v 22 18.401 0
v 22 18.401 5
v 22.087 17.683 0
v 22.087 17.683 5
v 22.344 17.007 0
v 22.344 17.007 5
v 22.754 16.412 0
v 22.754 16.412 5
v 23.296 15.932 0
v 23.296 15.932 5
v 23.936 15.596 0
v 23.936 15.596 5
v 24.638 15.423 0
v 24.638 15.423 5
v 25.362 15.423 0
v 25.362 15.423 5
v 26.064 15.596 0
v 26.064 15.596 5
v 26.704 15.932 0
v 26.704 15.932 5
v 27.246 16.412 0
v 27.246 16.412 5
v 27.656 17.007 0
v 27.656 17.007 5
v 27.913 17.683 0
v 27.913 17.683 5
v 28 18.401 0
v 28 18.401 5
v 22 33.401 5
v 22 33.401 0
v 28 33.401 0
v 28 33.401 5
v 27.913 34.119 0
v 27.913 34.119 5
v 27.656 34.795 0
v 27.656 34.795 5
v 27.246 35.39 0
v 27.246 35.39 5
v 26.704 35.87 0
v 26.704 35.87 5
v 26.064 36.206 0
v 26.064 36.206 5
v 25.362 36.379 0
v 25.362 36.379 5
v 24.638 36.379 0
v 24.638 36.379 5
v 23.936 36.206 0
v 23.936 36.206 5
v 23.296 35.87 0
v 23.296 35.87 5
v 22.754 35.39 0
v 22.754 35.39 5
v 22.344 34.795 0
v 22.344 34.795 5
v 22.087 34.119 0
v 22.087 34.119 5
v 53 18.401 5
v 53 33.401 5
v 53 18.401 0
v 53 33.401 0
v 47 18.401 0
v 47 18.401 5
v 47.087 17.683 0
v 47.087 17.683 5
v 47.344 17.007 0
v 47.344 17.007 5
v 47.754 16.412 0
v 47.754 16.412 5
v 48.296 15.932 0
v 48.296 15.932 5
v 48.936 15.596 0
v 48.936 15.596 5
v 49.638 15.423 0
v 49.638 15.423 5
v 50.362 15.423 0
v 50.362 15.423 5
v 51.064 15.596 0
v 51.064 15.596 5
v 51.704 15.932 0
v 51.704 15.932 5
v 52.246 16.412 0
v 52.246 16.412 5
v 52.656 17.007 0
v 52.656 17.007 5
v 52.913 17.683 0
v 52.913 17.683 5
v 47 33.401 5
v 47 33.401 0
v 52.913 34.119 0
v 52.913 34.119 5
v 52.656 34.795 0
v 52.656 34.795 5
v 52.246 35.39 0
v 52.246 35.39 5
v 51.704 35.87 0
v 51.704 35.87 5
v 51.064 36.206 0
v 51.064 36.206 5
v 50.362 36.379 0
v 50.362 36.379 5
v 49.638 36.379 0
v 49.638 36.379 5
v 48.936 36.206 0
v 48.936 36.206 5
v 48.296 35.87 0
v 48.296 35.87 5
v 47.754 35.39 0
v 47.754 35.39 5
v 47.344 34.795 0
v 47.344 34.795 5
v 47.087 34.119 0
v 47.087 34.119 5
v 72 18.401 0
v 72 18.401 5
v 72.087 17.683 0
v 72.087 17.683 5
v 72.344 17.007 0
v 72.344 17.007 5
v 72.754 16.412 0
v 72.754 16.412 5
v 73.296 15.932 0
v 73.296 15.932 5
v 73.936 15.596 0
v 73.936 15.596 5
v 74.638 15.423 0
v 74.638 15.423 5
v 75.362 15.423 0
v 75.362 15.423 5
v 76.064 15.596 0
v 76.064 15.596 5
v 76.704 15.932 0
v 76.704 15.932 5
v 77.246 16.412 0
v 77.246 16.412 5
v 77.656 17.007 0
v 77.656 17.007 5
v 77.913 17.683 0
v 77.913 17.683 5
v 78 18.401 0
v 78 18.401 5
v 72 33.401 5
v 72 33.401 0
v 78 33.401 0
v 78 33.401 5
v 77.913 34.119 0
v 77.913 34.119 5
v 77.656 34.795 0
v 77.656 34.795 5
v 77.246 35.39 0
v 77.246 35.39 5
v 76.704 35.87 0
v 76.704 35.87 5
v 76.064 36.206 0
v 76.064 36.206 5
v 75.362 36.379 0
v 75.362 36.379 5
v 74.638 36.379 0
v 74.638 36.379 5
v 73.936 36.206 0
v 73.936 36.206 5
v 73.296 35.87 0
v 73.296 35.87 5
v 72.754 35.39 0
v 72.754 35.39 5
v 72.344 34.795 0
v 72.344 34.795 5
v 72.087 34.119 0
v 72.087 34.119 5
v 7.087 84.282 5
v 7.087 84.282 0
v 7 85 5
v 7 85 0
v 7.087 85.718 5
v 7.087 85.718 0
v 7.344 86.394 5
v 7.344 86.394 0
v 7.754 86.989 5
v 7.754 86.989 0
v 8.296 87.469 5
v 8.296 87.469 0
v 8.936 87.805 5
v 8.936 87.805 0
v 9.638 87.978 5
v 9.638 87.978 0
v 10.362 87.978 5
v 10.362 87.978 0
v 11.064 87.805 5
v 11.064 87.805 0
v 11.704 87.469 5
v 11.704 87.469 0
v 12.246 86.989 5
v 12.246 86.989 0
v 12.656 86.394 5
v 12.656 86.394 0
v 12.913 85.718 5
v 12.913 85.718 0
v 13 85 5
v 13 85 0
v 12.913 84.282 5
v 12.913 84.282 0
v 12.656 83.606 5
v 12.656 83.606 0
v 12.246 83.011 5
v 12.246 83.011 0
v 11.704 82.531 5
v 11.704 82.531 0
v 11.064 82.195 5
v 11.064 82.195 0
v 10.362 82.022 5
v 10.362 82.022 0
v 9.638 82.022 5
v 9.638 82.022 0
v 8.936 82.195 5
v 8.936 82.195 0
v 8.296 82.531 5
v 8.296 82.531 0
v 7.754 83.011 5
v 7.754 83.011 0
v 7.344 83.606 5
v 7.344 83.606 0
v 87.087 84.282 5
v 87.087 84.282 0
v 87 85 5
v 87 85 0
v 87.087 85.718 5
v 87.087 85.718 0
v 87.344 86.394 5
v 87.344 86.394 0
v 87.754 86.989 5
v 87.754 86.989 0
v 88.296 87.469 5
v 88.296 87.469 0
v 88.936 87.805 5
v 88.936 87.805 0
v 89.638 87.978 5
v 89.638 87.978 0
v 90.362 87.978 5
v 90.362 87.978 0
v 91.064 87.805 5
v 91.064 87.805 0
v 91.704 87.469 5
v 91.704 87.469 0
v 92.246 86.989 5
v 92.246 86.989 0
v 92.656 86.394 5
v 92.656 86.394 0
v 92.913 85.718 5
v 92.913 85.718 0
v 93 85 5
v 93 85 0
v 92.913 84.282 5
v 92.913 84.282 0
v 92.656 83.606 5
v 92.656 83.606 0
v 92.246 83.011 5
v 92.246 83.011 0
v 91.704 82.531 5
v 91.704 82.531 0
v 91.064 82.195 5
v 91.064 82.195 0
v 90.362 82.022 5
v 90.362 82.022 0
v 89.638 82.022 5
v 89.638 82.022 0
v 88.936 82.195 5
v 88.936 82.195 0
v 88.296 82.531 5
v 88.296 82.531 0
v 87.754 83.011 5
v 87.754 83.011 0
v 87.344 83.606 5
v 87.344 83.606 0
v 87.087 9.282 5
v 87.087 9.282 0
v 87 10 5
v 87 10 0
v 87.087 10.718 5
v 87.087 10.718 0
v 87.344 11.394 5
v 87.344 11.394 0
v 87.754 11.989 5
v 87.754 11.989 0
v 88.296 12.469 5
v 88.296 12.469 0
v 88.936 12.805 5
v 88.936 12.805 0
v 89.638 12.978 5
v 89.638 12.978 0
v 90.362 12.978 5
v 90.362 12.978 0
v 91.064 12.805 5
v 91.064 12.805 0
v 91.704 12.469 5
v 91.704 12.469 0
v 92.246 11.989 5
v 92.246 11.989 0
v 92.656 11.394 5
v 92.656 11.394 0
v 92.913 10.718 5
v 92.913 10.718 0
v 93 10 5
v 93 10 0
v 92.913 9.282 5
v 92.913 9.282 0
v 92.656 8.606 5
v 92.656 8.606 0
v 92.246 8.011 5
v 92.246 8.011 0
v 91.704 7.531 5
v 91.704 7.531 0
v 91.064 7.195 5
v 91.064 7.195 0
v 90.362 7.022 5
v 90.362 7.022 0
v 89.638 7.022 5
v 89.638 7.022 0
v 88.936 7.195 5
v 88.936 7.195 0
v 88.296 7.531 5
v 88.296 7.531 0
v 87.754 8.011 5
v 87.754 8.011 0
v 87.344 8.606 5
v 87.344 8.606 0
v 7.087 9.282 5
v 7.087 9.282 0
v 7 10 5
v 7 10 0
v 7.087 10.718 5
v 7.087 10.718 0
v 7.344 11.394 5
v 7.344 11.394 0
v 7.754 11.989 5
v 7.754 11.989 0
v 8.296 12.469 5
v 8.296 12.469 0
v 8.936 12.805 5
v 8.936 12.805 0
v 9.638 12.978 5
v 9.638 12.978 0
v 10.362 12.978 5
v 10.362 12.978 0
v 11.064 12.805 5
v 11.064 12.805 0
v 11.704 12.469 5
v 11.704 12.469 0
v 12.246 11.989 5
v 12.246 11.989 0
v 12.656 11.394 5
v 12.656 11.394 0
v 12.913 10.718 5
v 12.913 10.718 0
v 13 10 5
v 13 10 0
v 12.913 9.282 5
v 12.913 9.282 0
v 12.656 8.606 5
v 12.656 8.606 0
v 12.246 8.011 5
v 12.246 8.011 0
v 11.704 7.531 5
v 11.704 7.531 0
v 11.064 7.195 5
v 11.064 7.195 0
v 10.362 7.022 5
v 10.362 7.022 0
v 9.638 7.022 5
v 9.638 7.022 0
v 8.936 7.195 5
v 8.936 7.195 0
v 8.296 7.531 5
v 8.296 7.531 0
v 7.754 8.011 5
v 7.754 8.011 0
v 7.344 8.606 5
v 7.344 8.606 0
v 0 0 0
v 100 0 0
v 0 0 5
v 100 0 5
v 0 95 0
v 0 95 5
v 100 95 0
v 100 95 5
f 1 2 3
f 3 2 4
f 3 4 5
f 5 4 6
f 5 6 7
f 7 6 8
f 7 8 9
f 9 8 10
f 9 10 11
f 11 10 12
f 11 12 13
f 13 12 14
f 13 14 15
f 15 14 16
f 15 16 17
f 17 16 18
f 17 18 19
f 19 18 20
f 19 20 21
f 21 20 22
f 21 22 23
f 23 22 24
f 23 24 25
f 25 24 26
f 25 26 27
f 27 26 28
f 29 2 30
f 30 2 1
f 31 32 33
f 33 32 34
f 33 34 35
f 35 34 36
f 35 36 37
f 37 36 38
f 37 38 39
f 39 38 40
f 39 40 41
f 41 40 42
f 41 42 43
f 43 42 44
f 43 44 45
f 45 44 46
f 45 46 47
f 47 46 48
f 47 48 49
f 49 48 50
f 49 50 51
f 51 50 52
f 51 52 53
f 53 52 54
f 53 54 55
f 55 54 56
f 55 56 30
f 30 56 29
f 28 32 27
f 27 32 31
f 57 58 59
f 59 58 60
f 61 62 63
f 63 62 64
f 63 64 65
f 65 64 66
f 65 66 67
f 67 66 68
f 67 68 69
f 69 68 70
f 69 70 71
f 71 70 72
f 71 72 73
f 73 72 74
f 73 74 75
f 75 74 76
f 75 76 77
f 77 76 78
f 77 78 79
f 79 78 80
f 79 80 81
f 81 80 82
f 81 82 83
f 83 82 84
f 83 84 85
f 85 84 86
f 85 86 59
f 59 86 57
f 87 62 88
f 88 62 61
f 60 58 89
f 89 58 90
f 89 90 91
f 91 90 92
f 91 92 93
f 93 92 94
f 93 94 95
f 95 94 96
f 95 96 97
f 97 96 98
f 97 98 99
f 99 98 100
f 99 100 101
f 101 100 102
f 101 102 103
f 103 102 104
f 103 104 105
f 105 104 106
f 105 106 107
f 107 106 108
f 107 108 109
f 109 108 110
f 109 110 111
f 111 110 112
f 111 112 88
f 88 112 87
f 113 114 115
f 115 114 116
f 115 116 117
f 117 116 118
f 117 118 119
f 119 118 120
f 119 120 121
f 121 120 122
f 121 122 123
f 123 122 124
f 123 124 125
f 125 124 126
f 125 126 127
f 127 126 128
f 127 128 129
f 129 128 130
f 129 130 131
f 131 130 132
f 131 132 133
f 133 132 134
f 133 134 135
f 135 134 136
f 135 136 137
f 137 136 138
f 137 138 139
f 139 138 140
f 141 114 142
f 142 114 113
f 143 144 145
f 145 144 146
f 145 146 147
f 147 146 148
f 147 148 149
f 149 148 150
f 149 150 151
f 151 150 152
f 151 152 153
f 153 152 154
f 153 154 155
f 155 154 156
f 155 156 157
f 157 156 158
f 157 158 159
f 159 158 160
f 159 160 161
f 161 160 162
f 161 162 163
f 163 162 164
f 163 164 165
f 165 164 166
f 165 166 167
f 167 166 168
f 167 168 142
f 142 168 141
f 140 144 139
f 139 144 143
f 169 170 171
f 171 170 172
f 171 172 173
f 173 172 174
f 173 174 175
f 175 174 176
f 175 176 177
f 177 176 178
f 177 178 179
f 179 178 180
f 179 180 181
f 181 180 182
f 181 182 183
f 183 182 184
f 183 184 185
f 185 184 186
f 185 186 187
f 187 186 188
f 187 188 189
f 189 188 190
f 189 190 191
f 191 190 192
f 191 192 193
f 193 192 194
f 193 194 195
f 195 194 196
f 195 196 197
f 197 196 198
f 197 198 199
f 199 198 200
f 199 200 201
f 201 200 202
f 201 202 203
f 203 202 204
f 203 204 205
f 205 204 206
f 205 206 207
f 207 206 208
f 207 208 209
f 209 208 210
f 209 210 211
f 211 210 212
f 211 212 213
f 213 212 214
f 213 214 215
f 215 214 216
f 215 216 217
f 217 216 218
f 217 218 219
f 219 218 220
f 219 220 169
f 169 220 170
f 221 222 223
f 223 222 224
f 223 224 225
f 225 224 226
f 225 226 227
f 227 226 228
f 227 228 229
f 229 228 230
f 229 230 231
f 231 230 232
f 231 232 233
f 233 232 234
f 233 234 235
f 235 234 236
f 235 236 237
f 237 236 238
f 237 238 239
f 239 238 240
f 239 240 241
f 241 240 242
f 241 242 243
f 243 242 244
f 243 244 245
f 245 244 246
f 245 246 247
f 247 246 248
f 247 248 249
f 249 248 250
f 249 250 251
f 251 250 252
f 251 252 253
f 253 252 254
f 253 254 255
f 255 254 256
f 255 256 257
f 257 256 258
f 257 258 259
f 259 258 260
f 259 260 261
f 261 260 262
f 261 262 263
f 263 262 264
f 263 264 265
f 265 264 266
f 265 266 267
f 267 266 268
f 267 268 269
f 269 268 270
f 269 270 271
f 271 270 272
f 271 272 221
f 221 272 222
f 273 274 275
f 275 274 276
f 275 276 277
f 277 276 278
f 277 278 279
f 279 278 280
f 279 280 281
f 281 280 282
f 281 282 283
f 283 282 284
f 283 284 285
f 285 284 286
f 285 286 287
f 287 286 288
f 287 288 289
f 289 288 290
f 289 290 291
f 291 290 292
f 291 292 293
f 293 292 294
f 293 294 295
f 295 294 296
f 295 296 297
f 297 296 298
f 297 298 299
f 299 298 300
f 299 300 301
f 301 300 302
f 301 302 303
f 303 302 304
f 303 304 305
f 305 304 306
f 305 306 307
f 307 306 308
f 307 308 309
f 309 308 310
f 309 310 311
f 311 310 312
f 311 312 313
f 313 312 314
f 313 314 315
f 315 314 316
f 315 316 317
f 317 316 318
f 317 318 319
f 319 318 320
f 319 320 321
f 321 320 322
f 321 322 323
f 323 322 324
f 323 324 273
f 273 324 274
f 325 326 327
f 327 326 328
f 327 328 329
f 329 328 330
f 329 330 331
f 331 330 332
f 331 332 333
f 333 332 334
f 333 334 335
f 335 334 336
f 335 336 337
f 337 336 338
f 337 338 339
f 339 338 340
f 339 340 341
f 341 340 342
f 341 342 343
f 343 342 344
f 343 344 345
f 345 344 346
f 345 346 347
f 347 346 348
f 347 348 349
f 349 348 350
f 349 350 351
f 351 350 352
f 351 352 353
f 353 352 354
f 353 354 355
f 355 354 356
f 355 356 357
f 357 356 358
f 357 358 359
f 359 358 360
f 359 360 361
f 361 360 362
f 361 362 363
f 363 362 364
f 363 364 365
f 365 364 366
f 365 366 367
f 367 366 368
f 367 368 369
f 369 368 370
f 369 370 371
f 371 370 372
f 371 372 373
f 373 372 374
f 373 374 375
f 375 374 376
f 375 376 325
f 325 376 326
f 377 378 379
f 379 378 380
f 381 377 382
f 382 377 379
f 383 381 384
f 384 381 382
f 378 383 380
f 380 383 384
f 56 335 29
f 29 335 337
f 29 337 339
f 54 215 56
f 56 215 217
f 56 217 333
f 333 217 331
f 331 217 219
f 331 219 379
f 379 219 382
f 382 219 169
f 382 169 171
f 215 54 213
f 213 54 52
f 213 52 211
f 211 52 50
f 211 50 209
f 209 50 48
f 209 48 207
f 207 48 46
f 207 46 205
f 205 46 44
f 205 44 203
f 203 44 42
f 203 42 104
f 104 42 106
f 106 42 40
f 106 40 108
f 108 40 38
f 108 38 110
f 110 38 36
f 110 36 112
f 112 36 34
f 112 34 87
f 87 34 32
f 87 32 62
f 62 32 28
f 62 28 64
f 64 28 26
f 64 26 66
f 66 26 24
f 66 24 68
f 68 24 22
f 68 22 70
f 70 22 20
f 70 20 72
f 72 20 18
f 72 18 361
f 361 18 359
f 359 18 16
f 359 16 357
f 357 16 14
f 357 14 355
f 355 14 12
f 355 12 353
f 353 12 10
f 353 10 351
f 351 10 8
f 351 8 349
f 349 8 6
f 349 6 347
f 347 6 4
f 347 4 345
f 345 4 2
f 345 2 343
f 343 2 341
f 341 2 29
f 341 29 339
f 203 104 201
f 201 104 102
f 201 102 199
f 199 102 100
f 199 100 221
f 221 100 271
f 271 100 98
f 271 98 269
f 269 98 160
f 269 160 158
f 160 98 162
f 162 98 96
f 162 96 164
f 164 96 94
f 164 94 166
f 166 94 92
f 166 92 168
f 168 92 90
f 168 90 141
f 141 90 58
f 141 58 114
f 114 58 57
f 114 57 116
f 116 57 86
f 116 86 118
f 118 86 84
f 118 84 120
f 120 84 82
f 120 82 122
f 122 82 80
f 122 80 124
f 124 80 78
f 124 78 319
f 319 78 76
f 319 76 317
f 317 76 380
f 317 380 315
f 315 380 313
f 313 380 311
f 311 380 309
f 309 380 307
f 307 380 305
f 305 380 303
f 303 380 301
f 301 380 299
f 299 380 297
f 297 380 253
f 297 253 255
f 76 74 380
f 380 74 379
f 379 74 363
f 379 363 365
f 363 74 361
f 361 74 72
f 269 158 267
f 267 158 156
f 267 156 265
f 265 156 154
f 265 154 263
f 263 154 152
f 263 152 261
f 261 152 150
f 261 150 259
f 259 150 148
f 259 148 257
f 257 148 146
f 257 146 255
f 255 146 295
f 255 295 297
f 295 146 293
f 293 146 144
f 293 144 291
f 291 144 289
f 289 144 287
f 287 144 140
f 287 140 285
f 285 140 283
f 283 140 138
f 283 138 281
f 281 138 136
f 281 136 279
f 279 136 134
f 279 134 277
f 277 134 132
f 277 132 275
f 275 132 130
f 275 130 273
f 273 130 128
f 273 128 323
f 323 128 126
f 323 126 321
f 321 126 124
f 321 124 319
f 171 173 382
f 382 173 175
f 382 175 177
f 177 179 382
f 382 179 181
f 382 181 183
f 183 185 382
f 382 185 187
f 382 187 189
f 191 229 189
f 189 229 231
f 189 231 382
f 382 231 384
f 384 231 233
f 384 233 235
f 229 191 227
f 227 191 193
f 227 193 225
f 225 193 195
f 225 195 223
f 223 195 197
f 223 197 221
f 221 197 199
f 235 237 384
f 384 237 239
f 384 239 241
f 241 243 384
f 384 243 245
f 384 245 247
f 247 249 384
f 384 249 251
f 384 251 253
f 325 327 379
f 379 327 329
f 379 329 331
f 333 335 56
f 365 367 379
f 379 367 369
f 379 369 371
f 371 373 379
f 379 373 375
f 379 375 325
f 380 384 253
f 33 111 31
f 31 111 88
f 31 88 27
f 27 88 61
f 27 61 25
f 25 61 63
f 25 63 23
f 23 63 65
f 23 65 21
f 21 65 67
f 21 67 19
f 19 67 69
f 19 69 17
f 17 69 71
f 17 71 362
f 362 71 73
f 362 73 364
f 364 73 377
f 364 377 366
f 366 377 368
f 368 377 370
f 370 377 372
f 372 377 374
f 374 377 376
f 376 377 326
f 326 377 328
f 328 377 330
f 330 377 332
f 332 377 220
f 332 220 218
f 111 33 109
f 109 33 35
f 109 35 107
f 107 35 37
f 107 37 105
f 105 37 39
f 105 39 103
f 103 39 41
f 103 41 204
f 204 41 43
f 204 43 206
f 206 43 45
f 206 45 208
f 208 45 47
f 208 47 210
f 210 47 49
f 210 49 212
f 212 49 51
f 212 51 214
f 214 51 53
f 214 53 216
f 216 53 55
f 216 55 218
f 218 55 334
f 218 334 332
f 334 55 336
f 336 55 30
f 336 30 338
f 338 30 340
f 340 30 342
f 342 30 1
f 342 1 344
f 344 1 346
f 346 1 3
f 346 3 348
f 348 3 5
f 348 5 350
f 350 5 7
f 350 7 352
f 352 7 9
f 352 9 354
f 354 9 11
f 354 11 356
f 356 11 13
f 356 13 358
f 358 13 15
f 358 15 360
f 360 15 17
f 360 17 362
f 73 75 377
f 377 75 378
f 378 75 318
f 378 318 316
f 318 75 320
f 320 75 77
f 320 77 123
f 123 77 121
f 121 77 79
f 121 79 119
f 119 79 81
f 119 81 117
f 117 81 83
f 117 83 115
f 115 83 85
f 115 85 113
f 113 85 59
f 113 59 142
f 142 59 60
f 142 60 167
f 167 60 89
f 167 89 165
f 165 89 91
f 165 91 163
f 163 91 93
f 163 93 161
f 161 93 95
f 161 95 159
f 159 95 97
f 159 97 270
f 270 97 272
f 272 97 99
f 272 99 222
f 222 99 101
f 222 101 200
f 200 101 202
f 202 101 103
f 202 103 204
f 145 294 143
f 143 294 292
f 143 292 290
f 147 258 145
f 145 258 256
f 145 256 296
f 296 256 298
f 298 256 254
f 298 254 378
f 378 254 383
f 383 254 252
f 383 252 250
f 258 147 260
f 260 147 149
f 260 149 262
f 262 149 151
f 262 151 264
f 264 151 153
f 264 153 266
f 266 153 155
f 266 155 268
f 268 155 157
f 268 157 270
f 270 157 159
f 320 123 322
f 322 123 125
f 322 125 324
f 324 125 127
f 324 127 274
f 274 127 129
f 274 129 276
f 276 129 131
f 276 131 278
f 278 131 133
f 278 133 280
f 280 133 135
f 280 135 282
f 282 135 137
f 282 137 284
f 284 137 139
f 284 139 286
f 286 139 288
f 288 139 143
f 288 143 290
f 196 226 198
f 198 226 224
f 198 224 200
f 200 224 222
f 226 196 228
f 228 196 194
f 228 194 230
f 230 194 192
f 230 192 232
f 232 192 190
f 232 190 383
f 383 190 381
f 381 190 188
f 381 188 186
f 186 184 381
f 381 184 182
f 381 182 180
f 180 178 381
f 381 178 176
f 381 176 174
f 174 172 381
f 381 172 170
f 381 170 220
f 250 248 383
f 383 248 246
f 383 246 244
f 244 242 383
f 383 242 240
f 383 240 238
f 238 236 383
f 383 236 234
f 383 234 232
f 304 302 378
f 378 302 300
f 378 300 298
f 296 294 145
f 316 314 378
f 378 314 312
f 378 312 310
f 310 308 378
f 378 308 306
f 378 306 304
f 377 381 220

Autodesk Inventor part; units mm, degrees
ref_plane "YZ Plane" through (0, 0, 0) normal (1, 0, 0) x (0, 1, 0)
ref_plane "XZ Plane" through (0, 0, 0) normal (0, 1, 0) x (-1, 0, 0)
ref_plane "XY Plane" through (0, 0, 0) normal (0, 0, 1) x (1, 0, 0)
sketch "Sketch1" plane through (0, 0, 0) normal (0, 0, 1) x (1, 0, 0)
  line L0 (0, 0) -> (100, 0)
  line L1 (100, 0) -> (100, 95)
  line L2 (100, 95) -> (0, 95)
  line L3 (0, 95) -> (0, 0)
  point P0 (10, 10)
  point P1 (90, 10)
  point P2 (90, 85)
  point P3 (10, 85)
  dimension "d0" = 100
  dimension "d1" = 95
  dimension "d4" = 75
  dimension "d5" = 10
  dimension "d6" = 80
  dimension "d7" = 10
extrude "Extrusion1" add sketch "Sketch1" along normal blind 5
hole "Hole1" at (10, 10, 0) at (90, 10, 0) at (90, 85, 0) at (10, 85, 0) direction (0, 0, 1) diameter 6 end through all
sketch "Sketch2" plane through (0, 0, 0) normal (0, 0, -1) x (-1, 0, 0)
  line L0 (0, 95) -> (0, 0) projected
  line L1 (-100, 95) -> (0, 95) projected
  line L2 (-75, 33.401) -> (-75, 18.401) construction
  line L3 (-72, 33.401) -> (-72, 18.401)
  line L4 (-78, 18.401) -> (-78, 33.401)
  arc A0 (-72, 33.401) -> (-78, 33.401) centre (-75, 33.401) ccw
  arc A1 (-78, 18.401) -> (-72, 18.401) centre (-75, 18.401) ccw
  line L5 (-50, 33.401) -> (-50, 18.401) construction
  line L6 (-53, 33.401) -> (-53, 18.401)
  line L7 (-47, 18.401) -> (-47, 33.401)
  arc A2 (-47, 33.401) -> (-53, 33.401) centre (-50, 33.401) ccw
  arc A3 (-53, 18.401) -> (-47, 18.401) centre (-50, 18.401) ccw
  line L8 (-25, 33.401) -> (-25, 18.401) construction
  line L9 (-22, 33.401) -> (-22, 18.401)
  line L10 (-28, 18.401) -> (-28, 33.401)
  arc A4 (-22, 33.401) -> (-28, 33.401) centre (-25, 33.401) ccw
  arc A5 (-28, 18.401) -> (-22, 18.401) centre (-25, 18.401) ccw
  point P0 (-25, 25.901)
  point P1 (-50, 25.901)
  point P2 (-75, 25.901)
  point P3 (-75, 25.901)
  point P4 (-50, 25.901)
  point P5 (-25, 25.901)
  dimension "d15" = 50
  dimension "d17" = 25
  dimension "d18" = 25
  dimension "d19" = 69.099
  dimension "d27" = 6
  dimension "d28" = 15
  dimension "d29" = 7.5
extrude "Extrusion2" cut sketch "Sketch2" against normal blind 10
equation "\"d29\" = 0.5 * d28"
properties part number "Magazine_Mount_Plate_3DPrint"
